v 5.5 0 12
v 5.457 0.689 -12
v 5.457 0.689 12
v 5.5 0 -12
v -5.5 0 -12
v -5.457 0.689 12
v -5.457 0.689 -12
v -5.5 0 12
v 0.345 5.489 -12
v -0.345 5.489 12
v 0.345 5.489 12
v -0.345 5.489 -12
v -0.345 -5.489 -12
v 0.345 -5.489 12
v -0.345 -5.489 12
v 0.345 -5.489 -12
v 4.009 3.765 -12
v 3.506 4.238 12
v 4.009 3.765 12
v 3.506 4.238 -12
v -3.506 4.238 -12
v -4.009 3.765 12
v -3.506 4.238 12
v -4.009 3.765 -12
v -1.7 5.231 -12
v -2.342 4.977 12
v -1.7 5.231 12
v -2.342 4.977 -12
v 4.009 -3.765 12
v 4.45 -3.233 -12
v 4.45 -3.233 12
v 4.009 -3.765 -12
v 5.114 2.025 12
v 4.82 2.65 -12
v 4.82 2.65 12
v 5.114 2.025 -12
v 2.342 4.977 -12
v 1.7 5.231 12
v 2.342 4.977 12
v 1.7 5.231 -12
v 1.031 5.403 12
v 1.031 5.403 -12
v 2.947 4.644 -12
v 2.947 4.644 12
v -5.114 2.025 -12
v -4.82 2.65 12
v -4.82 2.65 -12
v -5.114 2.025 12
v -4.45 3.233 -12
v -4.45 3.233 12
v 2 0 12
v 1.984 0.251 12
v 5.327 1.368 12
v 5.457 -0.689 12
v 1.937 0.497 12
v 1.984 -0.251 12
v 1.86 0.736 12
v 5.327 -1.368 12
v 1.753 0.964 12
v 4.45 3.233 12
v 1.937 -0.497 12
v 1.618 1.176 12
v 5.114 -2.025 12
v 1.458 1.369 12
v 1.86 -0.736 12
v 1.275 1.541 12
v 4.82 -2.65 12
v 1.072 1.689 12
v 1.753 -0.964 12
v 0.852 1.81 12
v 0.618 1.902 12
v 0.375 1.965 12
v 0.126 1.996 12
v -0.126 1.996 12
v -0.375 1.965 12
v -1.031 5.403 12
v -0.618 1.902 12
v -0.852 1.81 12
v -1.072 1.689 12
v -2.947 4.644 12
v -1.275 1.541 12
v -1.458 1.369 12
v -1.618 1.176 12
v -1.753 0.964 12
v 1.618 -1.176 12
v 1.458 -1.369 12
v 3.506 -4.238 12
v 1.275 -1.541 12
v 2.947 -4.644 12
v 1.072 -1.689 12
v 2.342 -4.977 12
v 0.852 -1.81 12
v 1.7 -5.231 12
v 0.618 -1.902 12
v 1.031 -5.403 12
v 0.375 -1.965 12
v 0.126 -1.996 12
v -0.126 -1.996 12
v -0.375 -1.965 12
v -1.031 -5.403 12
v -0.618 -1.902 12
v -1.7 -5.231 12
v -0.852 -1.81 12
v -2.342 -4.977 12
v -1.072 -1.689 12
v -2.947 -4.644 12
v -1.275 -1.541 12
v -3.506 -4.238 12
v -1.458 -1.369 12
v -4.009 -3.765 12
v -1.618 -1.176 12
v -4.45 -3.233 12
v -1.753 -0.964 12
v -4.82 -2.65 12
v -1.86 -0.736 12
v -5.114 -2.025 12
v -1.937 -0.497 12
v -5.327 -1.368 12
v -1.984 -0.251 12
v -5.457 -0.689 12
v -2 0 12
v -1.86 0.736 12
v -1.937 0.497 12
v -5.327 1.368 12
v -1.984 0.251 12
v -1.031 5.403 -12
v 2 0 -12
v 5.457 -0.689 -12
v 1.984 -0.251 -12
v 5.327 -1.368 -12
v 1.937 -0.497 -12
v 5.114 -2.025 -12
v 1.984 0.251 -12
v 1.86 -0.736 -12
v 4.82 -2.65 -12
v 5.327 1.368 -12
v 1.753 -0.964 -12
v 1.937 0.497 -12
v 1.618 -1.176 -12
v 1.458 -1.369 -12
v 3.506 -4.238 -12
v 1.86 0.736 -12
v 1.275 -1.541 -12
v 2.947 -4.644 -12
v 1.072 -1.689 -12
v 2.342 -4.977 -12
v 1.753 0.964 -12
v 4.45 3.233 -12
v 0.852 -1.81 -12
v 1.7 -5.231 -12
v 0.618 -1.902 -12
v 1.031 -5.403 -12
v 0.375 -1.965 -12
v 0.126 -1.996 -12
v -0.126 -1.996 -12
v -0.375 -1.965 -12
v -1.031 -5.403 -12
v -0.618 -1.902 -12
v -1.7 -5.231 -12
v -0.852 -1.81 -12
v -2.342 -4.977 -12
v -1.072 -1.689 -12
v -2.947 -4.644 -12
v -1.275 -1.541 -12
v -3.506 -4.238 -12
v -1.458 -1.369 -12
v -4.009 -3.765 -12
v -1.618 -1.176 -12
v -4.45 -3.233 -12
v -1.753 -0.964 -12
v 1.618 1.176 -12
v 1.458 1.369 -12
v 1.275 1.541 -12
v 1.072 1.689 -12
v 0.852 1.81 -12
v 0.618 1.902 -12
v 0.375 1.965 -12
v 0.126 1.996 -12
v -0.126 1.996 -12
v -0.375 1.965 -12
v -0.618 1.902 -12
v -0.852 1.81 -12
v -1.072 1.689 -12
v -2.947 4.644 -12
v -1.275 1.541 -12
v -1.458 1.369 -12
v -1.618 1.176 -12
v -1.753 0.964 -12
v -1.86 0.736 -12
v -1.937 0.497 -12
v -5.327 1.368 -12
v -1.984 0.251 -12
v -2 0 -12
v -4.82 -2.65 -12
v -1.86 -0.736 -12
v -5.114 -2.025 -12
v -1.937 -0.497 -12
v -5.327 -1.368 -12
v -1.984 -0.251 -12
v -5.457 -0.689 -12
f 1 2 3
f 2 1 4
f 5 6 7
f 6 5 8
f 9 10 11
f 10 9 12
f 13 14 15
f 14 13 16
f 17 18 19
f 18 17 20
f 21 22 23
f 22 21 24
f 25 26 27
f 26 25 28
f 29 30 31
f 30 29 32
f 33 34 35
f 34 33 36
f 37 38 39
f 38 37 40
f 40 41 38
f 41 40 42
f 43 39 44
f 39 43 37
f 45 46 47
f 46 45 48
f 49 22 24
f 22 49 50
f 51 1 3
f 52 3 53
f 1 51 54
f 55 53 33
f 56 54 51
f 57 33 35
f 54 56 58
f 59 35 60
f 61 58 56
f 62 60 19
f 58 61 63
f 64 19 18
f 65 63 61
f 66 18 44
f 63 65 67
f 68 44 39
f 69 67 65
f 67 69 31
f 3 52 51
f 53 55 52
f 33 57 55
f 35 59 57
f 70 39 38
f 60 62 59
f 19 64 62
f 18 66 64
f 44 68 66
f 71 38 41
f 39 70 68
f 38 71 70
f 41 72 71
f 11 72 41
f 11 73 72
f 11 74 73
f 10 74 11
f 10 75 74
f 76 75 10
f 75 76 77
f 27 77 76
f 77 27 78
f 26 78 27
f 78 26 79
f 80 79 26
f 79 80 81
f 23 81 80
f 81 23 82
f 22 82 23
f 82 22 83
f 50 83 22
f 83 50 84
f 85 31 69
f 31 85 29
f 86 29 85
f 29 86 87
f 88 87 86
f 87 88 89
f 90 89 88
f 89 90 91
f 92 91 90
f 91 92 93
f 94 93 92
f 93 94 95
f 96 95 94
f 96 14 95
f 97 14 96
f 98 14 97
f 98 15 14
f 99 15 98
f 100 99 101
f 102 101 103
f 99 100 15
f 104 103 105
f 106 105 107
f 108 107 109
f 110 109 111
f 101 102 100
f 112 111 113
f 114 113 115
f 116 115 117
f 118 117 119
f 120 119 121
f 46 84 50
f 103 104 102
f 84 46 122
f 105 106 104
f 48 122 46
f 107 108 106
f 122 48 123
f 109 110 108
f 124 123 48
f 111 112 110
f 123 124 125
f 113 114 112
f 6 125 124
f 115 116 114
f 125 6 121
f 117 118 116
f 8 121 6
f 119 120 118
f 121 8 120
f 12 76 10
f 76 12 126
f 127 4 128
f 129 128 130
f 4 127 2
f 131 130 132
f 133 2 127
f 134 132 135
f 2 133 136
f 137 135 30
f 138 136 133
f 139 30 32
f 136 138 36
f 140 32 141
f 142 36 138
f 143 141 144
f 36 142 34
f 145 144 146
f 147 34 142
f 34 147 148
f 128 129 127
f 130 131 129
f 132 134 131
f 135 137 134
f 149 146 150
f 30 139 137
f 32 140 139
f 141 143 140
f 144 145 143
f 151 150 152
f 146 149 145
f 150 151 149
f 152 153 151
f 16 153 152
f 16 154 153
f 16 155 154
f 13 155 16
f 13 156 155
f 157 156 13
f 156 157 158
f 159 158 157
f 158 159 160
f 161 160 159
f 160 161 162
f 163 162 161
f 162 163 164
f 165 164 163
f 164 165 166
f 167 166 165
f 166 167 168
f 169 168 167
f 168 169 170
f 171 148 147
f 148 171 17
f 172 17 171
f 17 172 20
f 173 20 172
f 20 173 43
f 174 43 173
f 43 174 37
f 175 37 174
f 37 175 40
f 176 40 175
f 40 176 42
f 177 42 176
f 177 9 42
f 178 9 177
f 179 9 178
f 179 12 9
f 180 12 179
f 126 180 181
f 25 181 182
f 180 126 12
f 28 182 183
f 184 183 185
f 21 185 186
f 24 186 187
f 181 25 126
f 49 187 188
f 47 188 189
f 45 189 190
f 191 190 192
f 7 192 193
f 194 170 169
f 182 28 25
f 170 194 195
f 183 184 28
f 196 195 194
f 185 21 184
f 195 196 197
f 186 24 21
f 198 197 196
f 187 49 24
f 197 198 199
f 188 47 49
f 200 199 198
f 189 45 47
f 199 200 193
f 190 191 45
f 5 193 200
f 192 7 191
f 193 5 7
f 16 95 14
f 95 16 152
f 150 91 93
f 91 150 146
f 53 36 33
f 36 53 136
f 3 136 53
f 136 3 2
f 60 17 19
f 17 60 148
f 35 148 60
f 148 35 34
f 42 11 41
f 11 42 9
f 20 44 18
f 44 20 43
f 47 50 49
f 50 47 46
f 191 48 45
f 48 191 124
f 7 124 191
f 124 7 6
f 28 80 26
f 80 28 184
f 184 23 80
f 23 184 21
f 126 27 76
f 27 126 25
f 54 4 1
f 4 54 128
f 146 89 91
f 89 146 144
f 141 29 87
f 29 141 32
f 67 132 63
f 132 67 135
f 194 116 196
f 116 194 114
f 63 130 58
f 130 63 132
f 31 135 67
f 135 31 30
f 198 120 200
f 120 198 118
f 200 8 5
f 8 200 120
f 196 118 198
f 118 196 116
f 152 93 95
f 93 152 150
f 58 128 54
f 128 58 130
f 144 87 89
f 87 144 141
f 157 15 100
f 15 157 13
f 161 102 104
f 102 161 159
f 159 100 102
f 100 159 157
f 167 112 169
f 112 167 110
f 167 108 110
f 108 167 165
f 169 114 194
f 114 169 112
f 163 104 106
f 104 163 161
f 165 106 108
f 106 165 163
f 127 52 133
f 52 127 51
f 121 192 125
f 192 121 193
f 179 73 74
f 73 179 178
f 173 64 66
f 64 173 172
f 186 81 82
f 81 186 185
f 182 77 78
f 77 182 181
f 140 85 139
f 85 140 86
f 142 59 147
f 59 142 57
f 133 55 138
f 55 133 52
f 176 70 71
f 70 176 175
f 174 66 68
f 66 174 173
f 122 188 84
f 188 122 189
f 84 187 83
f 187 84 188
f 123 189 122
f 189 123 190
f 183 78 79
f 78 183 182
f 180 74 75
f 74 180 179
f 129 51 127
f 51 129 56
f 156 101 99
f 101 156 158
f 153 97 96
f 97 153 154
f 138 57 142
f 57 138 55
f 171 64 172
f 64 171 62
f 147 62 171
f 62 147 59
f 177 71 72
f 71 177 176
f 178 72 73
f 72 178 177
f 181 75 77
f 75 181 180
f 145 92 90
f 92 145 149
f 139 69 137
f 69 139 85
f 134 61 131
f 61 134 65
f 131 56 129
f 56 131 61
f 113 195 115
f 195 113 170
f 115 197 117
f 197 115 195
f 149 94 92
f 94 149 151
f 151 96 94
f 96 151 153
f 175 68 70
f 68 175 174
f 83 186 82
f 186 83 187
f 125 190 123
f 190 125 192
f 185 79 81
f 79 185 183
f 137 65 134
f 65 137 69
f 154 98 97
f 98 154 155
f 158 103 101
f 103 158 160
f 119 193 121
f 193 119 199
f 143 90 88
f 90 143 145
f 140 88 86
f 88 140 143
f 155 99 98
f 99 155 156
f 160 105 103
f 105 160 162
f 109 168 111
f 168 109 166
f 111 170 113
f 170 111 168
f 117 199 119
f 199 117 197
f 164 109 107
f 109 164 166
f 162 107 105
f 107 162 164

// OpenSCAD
$fn = 50;


difference() {
	union() {
		translate(v = [0, 0, -12.0000000000]) {
			cylinder(h = 24, r = 5.5000000000);
		}
	}
	union() {
		translate(v = [0, 0, -100.0000000000]) {
			cylinder(h = 200, r = 2);
		}
	}
}
